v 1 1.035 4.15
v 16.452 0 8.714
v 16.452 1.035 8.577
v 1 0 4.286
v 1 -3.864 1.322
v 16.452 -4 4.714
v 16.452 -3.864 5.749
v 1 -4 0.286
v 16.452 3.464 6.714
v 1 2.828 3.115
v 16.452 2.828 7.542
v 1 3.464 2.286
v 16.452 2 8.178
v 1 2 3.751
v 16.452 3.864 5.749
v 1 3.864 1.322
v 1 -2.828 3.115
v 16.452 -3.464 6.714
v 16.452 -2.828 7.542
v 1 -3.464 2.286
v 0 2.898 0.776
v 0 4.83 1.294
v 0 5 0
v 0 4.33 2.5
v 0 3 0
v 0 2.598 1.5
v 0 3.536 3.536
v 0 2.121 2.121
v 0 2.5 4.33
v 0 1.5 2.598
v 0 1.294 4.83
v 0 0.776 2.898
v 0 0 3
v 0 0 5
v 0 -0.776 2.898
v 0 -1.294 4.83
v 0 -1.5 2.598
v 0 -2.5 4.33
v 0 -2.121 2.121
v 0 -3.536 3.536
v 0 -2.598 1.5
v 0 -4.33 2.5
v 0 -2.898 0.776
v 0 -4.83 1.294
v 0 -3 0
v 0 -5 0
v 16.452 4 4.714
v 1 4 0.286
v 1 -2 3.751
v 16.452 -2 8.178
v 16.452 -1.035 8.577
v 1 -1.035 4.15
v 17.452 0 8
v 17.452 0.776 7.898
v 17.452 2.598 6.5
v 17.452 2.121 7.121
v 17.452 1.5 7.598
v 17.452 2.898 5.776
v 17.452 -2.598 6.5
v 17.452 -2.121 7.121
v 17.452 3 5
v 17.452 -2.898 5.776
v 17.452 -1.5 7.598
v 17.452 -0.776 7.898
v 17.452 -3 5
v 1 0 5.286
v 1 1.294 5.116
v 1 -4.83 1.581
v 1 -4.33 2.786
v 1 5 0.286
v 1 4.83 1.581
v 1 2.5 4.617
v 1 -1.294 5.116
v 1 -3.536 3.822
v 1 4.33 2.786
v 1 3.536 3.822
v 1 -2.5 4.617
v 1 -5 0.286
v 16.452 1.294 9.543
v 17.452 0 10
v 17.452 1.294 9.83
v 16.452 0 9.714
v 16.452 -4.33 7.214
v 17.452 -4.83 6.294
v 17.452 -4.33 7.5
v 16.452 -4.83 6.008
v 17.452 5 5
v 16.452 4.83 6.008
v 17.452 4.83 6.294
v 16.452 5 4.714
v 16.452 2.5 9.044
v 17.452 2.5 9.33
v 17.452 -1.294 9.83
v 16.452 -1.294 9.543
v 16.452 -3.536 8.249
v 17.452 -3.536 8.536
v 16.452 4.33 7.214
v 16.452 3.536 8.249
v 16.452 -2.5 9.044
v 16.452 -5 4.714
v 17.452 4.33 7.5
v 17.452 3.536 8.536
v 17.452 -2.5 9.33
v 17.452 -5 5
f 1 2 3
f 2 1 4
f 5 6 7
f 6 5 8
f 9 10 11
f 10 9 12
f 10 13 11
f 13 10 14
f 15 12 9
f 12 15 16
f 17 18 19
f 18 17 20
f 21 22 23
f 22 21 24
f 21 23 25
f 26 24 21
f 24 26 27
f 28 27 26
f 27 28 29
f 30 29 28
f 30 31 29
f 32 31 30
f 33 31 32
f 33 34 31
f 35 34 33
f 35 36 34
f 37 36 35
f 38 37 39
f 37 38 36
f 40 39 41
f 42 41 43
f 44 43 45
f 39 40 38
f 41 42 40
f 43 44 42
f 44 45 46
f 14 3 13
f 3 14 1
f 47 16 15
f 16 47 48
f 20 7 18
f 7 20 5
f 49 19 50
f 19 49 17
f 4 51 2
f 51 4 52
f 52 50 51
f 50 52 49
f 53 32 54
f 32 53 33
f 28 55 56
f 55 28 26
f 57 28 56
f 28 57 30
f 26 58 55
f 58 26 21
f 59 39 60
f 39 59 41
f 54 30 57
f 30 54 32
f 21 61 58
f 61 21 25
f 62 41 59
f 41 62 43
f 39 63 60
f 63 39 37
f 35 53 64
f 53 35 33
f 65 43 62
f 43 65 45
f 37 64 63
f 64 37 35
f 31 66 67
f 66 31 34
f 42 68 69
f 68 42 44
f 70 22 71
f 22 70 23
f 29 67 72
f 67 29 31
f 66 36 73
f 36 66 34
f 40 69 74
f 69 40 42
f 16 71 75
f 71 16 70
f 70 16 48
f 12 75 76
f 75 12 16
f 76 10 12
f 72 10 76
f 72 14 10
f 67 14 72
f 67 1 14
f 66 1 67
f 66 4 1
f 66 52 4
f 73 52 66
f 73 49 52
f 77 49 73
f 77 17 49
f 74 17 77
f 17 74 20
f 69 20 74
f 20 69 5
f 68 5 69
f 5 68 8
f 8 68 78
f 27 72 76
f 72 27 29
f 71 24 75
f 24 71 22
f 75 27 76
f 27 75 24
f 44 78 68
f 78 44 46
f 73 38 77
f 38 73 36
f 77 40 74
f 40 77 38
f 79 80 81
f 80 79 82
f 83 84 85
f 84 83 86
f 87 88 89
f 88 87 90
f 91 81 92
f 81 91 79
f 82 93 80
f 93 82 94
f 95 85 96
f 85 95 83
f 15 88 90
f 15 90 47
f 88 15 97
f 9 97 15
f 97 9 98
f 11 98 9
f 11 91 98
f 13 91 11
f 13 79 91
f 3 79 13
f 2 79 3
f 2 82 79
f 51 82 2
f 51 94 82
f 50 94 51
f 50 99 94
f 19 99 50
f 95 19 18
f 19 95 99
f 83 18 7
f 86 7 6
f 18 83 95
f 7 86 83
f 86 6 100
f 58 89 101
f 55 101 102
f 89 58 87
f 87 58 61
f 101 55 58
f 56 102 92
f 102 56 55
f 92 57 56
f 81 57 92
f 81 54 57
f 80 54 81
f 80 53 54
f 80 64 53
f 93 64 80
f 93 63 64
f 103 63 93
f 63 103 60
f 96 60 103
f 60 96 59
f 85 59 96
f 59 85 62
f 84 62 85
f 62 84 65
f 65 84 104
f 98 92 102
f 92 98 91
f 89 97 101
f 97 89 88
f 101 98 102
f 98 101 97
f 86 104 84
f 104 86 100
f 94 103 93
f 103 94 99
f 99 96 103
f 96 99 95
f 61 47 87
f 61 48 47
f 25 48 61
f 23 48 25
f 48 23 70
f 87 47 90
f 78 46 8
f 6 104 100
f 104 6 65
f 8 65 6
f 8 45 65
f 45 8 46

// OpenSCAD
// file: ../build_environments.scad
// build_environments.scad: modules to build level sections
//

module pool(diameter=10.0, wall_height=2.0, step_width=3.0, connections=[])
{
    difference() {
        union() {
        difference() {
            cylinder(h=0.5,r1=diameter+step_width,r2=diameter+step_width,$fn=48);
            translate([0,0,-0.1])
                cylinder(h=0.7,r1=diameter,r2=diameter,$fn=48);
        }
        difference() {
            cylinder(h=wall_height,r1=diameter+step_width+1.0,r2=diameter+step_width+1.0,$fn=48);
            translate([0,0,-0.1])
                cylinder(h=wall_height+0.2,r1=diameter+step_width,r2=diameter+step_width,$fn=48);
        }
        }
    
        for (c = connections)
        {
            rotate([0,90,0]) {
                angle = atan2(c[1],c[0]);
                rotate([-angle,0,0]) {
                    cylinder(h=diameter+5.0,r1=c[2],r2=c[2],$fn=48);
                }
            }
        }
    }
}

module straight(length=10.0, width=2.0, dy1=0.0, dy2=0.0, dz=0.0)
{
    dims = [0, 0, 0, 0, 0, (dz/length)];
    matrix = [
        [ 1, dims[0], dims[1], 0 ],
        [ dims[2], 1, dims[4], 0 ],
        [ dims[5], dims[3], 1, 0 ],
        [ 0, 0, 0, 1 ]
    ];
    multmatrix(matrix)
    difference() {
        translate([dy1,0,0])
        union() {
            rotate([0,90,0]) {
                difference() {
                    cylinder(h=(length-dy1-dy2),r1=width+1.0,r2=width+1.0,$fn=24);
                    translate([0,0,-0.1])
                        cylinder(h=(length-dy1-dy2+0.2),r1=width,r2=width,$fn=24);
                }
                difference() {
                    cylinder(h=1.0,r1=width+2.0,r2=width+2.0,$fn=24);
                    translate([0,0,-0.1])
                        cylinder(h=1.2,r1=width,r2=width,$fn=24);
                }
                translate([0,0,(length-dy1-dy2)-1.0]) {
                    difference() {
                        cylinder(h=1.0,r1=width+2.0,r2=width+2.0,$fn=24);
                        translate([0,0,-0.1])
                            cylinder(h=1.2,r1=width,r2=width,$fn=24);
                    }
                }
            }
        }
        translate([0,0,-(2*width+4.0)/2])
            cube([3*length,3*length,2*width+4.0],center=true);
    }
}

module curve(p0=[0,0], center=[0,0], dir=1, angle=0.0, width=2.0)
{
    radius = sqrt((p0[0]-center[0])*(p0[0]-center[0]) + (p0[1]-center[1])*(p0[1]-center[1]));
    if (dir == 0) {
        difference() {
            rotate([0,0,-90])
            difference() {
                rotate_extrude(angle = angle, convexity = 10, $fn=32)
                    translate([radius, 0, 0])
                        circle(r = width+1.0,$fn=24);
                rotate([0,0,-1.0])
                    rotate_extrude(angle = angle+2.0, convexity = 10, $fn=32)
                        translate([radius, 0, 0])
                            circle(r = width,$fn=24);
            }
            translate([0,0,-(2*width+4.0)/2])
                cube([5*radius,5*radius,2*width+4.0],center=true);
        }
    }
    else {
        difference() {
            rotate([0,0,90])
            difference() {
                rotate_extrude(angle = -angle, convexity = 10, $fn=32)
                    translate([radius, 0, 0])
                        circle(r = width+1.0,$fn=24);
                rotate([0,0,1.0])
                    rotate_extrude(angle = -angle-2.0, convexity = 10, $fn=32)
                        translate([radius, 0, 0])
                            circle(r = width,$fn=24);
            }
            translate([0,0,-(2*width+4.0)/2])
                cube([5*radius,5*radius,2*width+4.0],center=true);
        }
    }

}

// test pool
//pool(diameter=12.0000, wall_height=3.0000, step_width=3.0000, connections=[[0.0000,-26.0000,2.0000], [23.6074,0.0000,2.0000]]);

// test straight, slope
//straight(length=26.0000, width=2.0000, dy1=11.8322, dy2=6.7082, dz=0.0000);
//straight(length=29.1549, width=12.0000, dy1=0.0000, dy2=0.0000, dz=-15.0000);

// test curve
//curve(p0=[23.6074, 0.0000], center=[23.6074, 5.0000], dir=0, angle=60.1011, width=2.0000);
//curve(p0=[33.6426, 12.4219], center=[37.9771, 9.9295], dir=1, angle=120.4627, width=2.0000);
// main file
use <../build_environments.scad>;
straight(length=17.4522, width=3.0000, dy1=0.0000, dy2=0.0000, dz=5.0000);
